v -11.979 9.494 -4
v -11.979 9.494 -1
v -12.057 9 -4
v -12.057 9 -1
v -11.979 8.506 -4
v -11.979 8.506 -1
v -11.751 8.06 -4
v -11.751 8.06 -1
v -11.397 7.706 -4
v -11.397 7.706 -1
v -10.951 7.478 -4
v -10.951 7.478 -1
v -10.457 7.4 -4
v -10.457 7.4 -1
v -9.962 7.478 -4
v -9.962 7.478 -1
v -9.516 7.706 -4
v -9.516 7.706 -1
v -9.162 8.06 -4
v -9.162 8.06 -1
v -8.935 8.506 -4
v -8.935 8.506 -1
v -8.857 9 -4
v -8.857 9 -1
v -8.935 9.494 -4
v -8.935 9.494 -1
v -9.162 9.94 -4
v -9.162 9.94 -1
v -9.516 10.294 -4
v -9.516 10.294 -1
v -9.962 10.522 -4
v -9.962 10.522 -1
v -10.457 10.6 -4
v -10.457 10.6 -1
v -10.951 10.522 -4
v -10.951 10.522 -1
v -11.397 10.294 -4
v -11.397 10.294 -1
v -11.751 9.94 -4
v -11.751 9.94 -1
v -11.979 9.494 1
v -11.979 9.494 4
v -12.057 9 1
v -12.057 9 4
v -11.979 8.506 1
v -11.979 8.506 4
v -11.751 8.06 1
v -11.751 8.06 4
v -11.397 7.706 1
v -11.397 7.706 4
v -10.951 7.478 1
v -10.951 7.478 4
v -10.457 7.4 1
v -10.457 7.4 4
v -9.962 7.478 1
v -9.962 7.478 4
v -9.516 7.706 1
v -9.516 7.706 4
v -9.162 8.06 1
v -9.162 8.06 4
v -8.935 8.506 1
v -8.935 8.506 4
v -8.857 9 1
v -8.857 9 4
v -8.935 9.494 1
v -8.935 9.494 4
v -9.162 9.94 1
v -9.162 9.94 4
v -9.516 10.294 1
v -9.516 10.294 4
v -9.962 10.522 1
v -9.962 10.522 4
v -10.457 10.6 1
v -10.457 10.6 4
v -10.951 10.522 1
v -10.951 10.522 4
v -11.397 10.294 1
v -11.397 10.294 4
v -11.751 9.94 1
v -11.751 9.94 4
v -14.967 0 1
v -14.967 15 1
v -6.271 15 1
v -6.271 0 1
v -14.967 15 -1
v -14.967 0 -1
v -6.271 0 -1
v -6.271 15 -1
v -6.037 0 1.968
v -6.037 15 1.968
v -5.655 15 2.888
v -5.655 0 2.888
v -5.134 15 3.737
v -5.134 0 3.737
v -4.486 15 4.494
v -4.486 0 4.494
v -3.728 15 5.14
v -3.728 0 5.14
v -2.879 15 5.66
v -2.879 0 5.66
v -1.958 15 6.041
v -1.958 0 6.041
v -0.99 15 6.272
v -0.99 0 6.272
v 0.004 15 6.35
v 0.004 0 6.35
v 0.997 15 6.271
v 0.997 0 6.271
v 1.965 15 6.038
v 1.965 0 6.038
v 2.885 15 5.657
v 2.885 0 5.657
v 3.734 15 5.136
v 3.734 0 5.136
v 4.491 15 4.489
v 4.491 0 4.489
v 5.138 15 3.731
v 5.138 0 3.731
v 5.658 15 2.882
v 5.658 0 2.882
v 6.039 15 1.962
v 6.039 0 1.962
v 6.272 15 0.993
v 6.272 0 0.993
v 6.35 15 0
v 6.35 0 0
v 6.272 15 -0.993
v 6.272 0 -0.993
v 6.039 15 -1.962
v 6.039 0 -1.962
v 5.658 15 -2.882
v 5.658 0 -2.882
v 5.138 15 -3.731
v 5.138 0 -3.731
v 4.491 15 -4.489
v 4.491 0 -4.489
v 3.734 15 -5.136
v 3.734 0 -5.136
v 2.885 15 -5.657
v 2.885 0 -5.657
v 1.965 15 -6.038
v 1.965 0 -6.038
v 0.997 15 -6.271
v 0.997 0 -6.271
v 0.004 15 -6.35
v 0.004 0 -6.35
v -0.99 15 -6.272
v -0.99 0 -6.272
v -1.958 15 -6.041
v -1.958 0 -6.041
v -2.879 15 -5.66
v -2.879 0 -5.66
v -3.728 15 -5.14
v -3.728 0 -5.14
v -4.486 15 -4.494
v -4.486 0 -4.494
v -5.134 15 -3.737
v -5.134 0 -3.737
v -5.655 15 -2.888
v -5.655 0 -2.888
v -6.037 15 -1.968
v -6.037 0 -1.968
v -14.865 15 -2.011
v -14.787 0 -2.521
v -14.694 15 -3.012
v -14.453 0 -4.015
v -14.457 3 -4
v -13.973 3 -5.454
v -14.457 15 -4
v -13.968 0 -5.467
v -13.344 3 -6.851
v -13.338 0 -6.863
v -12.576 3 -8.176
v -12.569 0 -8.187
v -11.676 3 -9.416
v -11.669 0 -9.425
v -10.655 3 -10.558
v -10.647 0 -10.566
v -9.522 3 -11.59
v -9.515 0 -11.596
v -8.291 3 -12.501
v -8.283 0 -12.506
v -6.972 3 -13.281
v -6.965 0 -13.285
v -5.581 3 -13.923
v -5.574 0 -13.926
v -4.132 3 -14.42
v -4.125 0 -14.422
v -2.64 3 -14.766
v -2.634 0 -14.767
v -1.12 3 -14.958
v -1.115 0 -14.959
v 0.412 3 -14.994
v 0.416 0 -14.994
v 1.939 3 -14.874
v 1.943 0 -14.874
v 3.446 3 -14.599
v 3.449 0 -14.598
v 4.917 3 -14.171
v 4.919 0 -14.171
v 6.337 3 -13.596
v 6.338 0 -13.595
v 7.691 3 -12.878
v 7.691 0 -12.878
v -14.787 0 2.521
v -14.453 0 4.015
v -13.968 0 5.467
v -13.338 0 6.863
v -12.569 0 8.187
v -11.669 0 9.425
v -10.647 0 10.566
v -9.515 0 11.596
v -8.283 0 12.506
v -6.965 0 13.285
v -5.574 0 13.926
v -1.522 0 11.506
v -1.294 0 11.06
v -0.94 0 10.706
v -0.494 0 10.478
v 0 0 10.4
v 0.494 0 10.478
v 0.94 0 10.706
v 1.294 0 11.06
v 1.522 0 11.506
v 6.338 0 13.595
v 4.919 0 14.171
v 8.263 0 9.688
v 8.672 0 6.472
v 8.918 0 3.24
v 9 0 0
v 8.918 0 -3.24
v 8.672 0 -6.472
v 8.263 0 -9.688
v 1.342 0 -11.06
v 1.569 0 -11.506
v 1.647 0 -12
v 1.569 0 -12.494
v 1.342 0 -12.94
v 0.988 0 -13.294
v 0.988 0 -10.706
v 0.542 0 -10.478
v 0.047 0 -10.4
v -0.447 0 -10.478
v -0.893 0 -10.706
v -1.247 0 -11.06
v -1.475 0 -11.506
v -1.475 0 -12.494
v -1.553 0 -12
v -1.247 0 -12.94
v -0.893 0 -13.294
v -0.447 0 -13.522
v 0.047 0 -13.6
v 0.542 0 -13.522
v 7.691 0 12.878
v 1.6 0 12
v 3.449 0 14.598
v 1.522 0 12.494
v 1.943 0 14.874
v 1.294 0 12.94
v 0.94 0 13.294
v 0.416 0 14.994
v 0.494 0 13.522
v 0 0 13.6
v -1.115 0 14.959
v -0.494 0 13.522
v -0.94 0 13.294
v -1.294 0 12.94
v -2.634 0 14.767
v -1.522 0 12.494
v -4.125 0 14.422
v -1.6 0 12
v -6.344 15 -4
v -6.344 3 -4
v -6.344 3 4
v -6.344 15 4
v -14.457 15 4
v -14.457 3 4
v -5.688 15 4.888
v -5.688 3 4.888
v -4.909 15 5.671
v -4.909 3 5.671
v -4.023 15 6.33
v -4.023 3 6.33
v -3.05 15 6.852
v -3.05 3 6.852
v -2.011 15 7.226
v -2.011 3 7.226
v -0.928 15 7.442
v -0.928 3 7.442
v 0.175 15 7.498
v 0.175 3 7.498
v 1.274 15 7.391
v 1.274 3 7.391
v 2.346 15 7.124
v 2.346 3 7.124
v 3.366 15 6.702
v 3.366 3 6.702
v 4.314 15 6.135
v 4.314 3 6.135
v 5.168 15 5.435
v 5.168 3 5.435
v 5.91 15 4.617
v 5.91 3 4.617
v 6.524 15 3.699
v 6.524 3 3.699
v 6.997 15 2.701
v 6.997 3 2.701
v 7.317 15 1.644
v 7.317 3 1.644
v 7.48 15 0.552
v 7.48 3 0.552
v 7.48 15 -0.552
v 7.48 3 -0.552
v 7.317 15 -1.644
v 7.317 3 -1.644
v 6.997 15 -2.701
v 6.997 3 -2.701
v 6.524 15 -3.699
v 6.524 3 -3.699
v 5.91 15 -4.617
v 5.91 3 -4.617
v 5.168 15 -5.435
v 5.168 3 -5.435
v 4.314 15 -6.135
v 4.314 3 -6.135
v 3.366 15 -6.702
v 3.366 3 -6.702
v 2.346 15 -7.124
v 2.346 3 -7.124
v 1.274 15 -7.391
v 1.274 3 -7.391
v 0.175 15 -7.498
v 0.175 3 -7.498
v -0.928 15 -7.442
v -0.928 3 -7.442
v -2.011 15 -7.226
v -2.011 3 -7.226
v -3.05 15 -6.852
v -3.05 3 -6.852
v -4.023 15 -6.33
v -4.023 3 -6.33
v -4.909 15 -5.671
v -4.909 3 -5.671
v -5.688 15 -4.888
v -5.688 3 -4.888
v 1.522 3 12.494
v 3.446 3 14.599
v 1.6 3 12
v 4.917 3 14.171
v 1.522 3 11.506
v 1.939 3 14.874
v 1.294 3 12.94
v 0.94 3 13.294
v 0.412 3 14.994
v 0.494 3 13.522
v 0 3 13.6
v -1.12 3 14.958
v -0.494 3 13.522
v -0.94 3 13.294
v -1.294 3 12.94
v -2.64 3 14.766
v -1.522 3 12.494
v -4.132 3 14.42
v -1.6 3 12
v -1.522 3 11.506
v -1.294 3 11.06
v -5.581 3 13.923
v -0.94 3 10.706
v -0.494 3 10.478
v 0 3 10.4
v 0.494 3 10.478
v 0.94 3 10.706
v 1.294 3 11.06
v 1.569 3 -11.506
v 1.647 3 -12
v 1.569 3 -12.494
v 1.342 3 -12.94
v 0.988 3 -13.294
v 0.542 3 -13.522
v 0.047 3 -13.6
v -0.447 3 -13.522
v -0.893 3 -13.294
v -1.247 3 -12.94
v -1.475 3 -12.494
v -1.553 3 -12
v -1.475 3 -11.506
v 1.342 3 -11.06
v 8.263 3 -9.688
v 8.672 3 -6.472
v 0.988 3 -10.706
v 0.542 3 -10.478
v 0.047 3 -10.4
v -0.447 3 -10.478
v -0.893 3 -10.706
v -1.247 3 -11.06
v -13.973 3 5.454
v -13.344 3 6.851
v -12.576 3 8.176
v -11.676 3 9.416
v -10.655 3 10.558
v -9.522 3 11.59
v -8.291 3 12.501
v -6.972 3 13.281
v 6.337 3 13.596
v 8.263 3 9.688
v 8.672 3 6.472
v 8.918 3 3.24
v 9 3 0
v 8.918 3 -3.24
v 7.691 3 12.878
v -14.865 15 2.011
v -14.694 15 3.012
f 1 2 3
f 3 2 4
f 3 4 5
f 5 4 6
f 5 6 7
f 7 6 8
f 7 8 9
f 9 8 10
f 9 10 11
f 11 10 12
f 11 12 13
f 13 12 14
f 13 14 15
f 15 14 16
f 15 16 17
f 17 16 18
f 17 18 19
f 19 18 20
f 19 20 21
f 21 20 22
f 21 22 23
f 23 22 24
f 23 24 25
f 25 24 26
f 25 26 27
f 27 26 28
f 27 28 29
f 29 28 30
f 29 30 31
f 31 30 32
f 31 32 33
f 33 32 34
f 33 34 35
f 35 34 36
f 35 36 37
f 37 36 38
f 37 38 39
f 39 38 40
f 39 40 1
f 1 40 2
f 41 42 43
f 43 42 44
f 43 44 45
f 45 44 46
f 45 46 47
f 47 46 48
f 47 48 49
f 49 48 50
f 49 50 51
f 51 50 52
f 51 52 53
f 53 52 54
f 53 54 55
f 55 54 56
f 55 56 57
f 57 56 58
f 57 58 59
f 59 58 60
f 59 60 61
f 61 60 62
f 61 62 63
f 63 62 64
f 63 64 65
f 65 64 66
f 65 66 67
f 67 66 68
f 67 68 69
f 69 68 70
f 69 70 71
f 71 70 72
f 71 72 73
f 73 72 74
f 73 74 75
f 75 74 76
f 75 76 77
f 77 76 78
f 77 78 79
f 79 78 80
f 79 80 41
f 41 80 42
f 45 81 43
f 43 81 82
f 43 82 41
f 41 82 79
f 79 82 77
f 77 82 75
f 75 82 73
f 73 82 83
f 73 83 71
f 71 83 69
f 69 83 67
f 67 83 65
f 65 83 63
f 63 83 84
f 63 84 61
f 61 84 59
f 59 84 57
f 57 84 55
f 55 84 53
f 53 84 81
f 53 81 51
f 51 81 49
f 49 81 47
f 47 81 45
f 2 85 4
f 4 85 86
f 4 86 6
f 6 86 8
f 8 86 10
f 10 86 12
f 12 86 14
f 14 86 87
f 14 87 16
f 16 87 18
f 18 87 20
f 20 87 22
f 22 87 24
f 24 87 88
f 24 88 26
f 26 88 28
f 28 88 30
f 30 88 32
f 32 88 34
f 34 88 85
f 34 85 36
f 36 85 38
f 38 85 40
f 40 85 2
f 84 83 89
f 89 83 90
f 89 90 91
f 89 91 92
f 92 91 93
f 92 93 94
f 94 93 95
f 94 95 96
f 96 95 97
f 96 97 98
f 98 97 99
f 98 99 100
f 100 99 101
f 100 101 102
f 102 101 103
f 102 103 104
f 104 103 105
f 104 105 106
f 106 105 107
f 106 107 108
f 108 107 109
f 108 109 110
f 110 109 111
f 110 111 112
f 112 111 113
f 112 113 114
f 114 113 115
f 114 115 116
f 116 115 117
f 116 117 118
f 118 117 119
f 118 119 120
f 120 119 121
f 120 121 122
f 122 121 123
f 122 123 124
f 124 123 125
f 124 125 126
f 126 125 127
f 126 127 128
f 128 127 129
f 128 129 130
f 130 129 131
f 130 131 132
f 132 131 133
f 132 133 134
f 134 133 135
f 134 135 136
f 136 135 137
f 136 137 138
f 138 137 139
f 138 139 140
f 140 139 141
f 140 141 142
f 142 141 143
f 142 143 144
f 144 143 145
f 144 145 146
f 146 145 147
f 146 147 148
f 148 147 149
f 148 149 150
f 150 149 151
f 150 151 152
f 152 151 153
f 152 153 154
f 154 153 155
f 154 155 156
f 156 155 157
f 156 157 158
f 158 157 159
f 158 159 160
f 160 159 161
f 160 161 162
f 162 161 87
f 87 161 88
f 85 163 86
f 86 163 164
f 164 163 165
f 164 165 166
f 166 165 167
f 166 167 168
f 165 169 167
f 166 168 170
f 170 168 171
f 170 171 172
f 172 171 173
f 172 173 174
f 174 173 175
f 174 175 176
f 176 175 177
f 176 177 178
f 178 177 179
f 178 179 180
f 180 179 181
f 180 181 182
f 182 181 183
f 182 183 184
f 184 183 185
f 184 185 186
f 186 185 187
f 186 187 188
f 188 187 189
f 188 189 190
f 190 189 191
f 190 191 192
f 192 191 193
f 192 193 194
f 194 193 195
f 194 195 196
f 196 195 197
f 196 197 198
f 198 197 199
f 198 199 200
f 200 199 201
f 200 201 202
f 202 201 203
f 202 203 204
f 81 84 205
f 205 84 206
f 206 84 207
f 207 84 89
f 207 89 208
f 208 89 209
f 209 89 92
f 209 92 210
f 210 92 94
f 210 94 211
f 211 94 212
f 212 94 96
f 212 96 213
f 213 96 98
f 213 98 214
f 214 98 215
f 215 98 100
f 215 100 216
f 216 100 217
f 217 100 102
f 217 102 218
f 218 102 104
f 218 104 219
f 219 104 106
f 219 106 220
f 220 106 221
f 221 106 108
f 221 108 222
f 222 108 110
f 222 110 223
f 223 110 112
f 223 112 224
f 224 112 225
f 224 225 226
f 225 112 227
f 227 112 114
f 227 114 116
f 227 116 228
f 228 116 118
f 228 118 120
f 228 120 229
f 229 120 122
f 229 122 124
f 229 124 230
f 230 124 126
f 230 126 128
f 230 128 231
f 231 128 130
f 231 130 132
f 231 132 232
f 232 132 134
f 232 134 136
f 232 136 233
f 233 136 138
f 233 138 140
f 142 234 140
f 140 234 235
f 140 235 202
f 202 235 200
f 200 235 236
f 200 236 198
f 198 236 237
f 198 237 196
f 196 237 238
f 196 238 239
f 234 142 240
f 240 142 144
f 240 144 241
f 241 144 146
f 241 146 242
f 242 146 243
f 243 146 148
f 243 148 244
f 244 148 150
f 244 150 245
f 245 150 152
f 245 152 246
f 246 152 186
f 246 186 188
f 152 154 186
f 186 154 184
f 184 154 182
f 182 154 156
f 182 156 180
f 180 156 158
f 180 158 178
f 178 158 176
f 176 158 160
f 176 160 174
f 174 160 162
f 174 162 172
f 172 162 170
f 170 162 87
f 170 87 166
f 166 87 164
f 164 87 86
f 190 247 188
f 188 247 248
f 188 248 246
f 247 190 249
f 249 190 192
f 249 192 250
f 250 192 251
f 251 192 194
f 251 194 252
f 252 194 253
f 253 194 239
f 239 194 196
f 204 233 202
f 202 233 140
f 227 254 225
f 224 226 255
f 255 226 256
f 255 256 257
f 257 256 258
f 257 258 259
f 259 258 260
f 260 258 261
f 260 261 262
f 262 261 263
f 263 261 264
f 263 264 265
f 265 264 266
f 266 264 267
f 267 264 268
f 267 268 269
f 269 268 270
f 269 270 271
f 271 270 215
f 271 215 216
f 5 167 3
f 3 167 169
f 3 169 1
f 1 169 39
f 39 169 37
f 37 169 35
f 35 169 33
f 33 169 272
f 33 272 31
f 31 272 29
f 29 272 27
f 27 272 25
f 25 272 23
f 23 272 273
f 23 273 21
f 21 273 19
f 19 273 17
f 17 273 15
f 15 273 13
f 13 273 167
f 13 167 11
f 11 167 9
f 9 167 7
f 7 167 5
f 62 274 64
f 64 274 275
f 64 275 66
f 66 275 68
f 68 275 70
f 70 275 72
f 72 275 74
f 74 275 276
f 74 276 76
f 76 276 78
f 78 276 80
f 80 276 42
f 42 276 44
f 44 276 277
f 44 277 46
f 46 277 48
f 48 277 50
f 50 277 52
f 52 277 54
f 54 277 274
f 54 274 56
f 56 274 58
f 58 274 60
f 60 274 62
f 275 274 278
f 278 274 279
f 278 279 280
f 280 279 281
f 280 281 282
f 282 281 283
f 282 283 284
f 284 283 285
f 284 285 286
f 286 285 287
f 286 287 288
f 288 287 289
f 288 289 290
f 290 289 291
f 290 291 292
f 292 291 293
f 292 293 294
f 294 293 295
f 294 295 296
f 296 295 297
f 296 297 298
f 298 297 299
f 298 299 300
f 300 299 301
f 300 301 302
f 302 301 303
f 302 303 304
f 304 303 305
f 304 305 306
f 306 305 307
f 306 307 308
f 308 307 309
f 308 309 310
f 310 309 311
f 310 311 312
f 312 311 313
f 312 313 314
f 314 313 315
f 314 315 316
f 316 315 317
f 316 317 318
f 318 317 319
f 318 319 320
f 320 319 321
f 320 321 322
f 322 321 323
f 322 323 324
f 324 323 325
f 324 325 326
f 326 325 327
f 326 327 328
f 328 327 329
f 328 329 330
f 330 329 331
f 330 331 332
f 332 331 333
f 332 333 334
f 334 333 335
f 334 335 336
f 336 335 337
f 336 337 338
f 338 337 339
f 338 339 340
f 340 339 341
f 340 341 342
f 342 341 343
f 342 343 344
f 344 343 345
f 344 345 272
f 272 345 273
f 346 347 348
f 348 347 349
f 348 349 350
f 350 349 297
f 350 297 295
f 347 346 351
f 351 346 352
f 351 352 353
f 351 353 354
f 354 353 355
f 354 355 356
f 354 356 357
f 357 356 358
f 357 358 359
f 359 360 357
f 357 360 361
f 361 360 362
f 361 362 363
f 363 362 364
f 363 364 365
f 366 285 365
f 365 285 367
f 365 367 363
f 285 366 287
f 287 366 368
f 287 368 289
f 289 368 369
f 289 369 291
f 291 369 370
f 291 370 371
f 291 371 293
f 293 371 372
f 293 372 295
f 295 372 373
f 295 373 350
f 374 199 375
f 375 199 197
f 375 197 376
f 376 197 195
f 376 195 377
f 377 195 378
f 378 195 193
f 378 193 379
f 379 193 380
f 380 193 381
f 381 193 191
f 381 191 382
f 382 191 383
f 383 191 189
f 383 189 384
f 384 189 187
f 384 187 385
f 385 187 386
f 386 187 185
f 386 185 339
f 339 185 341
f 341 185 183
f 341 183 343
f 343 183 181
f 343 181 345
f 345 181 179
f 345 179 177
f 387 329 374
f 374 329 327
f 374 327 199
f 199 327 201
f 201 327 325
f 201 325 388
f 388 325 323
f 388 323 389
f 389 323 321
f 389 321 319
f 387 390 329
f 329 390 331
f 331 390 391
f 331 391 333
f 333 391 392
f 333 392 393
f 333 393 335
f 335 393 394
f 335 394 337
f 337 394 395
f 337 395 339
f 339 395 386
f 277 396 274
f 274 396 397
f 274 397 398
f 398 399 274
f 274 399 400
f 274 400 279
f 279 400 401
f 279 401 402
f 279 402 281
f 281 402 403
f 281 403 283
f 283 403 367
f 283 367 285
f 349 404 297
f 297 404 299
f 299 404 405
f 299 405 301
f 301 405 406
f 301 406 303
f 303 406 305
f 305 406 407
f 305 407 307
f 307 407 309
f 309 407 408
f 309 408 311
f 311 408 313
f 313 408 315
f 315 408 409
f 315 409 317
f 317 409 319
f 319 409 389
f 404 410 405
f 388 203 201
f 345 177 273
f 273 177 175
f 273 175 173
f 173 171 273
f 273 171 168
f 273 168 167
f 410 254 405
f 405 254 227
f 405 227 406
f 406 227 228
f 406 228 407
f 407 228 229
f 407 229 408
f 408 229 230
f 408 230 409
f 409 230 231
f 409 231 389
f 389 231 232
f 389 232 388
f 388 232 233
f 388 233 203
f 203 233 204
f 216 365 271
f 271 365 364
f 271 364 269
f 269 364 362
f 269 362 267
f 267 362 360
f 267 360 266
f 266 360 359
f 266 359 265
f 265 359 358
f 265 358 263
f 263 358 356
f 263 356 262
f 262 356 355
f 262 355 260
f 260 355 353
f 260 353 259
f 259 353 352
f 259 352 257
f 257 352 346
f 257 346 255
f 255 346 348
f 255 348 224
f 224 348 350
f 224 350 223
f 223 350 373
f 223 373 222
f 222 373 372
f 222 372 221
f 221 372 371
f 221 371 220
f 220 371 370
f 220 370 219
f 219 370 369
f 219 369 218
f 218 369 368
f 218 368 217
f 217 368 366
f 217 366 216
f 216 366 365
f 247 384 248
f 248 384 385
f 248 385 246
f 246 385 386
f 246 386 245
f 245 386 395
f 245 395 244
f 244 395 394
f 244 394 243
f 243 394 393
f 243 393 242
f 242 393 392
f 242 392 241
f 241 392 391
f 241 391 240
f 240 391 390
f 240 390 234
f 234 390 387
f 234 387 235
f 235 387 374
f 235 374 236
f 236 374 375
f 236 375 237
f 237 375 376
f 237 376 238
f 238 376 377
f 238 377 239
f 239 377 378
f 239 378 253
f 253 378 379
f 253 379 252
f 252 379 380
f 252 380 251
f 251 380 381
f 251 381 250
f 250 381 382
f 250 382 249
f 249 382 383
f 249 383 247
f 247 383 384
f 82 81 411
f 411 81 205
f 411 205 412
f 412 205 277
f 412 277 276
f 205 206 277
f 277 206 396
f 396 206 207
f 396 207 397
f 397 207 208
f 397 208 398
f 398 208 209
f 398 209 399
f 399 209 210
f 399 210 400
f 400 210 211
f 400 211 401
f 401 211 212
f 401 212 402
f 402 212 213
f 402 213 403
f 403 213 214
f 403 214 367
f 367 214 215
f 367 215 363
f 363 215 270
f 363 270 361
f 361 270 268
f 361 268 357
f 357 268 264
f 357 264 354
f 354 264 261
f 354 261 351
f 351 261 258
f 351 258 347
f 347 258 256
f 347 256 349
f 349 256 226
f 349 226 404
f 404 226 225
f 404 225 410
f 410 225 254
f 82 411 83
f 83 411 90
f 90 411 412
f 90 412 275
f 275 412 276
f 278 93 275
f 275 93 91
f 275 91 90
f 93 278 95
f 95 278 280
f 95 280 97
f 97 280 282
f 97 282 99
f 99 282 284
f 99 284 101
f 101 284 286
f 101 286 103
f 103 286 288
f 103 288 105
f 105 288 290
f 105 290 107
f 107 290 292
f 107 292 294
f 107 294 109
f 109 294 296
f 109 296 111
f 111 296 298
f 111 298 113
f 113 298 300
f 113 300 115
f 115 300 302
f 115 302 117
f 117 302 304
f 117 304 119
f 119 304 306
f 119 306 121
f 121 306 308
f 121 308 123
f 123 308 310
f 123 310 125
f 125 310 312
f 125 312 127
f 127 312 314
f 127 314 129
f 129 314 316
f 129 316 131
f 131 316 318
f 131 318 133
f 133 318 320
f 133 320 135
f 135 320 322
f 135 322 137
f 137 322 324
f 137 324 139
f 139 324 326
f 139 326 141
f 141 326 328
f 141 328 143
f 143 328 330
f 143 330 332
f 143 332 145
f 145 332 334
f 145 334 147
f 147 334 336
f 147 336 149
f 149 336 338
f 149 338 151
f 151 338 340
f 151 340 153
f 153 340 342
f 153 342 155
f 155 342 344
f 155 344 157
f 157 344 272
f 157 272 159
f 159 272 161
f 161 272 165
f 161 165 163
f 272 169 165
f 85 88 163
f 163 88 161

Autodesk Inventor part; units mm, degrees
ref_plane "YZ Plane" through (0, 0, 0) normal (1, 0, 0) x (0, 1, 0)
ref_plane "XZ Plane" through (0, 0, 0) normal (0, 1, 0) x (-1, 0, 0)
ref_plane "XY Plane" through (0, 0, 0) normal (0, 0, 1) x (1, 0, 0)
sketch "Sketch1" plane through (0, 0, 0) normal (0, 0, 1) x (1, 0, 0)
  line L0 (-15, 0) -> (-6.35, 0)
  line L1 (-6.35, 0) -> (-6.35, 15)
  line L2 (-6.35, 15) -> (-7.5, 15)
  line L3 (-7.5, 15) -> (-7.5, 3)
  line L4 (-7.5, 3) -> (-15, 3)
  line L5 (-15, 3) -> (-15, 0)
  line L6 (0, -3) -> (0, 18) projected
  point P0 (0, 0)
  dimension "d0" = 3
  dimension "d2" = 15
  dimension "d3" = 6.35
  dimension "d4" = 15
  dimension "d17" = 7.5
  dimension "d18" = 1.15
revolve "Revolution1" add sketch "Sketch1" angle 360 about axis through (0, -10, 0) along (0, 1, 0)
sketch "Sketch2" plane through (0, 3, 0) normal (0, 1, 0) x (1, 0, 0)
  point P0 (0, 0)
  point P1 (0.0472, 12)
  point P2 (0, -12)
  dimension "d6" = 12
  dimension "d22" = 12
hole "Hole1" at (0.0472, 3, -12) at (0, 3, 12) direction (0, -1, 0) diameter 3.2 end through all
sketch "Sketch4" plane through (0, 3, 0) normal (0, 1, 0) x (1, 0, 0)
  circle A0 centre (0, 0) radius 15 projected
  circle A1 centre (0, 0) radius 7.5 projected
  circle A2 centre (-55, 0) radius 64
  point P0 (7.6909, 12.8783)
  point P1 (7.5, 0)
  point P2 (7.6909, -12.8783)
  dimension "d23" = 128
  dimension "d24" = 55
extrude "Extrusion2" cut sketch "Sketch4" against normal through all contours A0 A2 picked at (10.8452, -2.4648)
sketch "Sketch6" plane through (0, 3, 0) normal (0, 1, 0) x (1, 0, 0)
  arc A0 (7.6909, 12.8783) -> (7.6909, -12.8783) centre (0, 0) ccw projected
  circle A1 centre (0, 0) radius 7.5 projected
  line L0 (-6.3443, 4) -> (-15, 4)
  line L1 (-15, 4) -> (-15, -4)
  line L2 (-15, -4) -> (-6.3443, -4)
  line L3 (-6.3443, -4) -> (-6.3443, 4)
  point P0 (-14.4568, -4)
  point P1 (-6.3443, -4)
  point P2 (-14.4568, 4)
  dimension "d32" = 4
  dimension "d33" = 4
extrude "Extrusion3" add sketch "Sketch6" along normal up to surface (12 mm away) contours L0 A1 L2 A0
sketch "Sketch7" plane through (-14.4568, 15, -4) normal (0, 1, 0) x (1, 0, 0)
  circle A0 centre (14.4568, -4) radius 6.35 projected
  line L0 (8.1861, -5) -> (-0.5432, -5)
  line L1 (-0.5432, -5) -> (-0.5432, -3)
  line L2 (-0.5432, -3) -> (8.1861, -3)
  line L3 (8.1861, -3) -> (8.1861, -5)
  arc A1 (0, 0) -> (0, -8) centre (14.4568, -4) ccw projected
  point P0 (-0.5098, -5)
  point P1 (8.1861, -3)
  point P2 (-0.5098, -3)
  dimension "d27" = 1
  dimension "d28" = 1
extrude "Extrusion4" cut sketch "Sketch7" against normal through all contours A0 L0 A1 L2
sketch "Sketch8" plane through (-14.4568, 3, 4) normal (0, 0, 1) x (1, 0, 0)
  line L0 (0, 0) -> (0, 12) projected
  line L1 (8.1125, 12) -> (0, 12) projected
  point P0 (7.0914, 12)
  point P1 (4, 6)
  dimension "d35" = 12
  dimension "d37" = 4
  dimension "d38" = 6
hole "Hole2" at (-10.4568, 9, 4) direction (0, 0, -1) diameter 3.2 end through all
equation "\"d22\" = d6"
equation "\"d24\" = tubes_r"
equation "\"d33\" = d32"
equation "\"d28\" = d27"
equation "\"d38\" = 0.5 * d35"
equation "\"tubes_r\" = 55"
properties part number "BaffleClampWithScrew3Dprint" material "Brass, Soft Yellow"
